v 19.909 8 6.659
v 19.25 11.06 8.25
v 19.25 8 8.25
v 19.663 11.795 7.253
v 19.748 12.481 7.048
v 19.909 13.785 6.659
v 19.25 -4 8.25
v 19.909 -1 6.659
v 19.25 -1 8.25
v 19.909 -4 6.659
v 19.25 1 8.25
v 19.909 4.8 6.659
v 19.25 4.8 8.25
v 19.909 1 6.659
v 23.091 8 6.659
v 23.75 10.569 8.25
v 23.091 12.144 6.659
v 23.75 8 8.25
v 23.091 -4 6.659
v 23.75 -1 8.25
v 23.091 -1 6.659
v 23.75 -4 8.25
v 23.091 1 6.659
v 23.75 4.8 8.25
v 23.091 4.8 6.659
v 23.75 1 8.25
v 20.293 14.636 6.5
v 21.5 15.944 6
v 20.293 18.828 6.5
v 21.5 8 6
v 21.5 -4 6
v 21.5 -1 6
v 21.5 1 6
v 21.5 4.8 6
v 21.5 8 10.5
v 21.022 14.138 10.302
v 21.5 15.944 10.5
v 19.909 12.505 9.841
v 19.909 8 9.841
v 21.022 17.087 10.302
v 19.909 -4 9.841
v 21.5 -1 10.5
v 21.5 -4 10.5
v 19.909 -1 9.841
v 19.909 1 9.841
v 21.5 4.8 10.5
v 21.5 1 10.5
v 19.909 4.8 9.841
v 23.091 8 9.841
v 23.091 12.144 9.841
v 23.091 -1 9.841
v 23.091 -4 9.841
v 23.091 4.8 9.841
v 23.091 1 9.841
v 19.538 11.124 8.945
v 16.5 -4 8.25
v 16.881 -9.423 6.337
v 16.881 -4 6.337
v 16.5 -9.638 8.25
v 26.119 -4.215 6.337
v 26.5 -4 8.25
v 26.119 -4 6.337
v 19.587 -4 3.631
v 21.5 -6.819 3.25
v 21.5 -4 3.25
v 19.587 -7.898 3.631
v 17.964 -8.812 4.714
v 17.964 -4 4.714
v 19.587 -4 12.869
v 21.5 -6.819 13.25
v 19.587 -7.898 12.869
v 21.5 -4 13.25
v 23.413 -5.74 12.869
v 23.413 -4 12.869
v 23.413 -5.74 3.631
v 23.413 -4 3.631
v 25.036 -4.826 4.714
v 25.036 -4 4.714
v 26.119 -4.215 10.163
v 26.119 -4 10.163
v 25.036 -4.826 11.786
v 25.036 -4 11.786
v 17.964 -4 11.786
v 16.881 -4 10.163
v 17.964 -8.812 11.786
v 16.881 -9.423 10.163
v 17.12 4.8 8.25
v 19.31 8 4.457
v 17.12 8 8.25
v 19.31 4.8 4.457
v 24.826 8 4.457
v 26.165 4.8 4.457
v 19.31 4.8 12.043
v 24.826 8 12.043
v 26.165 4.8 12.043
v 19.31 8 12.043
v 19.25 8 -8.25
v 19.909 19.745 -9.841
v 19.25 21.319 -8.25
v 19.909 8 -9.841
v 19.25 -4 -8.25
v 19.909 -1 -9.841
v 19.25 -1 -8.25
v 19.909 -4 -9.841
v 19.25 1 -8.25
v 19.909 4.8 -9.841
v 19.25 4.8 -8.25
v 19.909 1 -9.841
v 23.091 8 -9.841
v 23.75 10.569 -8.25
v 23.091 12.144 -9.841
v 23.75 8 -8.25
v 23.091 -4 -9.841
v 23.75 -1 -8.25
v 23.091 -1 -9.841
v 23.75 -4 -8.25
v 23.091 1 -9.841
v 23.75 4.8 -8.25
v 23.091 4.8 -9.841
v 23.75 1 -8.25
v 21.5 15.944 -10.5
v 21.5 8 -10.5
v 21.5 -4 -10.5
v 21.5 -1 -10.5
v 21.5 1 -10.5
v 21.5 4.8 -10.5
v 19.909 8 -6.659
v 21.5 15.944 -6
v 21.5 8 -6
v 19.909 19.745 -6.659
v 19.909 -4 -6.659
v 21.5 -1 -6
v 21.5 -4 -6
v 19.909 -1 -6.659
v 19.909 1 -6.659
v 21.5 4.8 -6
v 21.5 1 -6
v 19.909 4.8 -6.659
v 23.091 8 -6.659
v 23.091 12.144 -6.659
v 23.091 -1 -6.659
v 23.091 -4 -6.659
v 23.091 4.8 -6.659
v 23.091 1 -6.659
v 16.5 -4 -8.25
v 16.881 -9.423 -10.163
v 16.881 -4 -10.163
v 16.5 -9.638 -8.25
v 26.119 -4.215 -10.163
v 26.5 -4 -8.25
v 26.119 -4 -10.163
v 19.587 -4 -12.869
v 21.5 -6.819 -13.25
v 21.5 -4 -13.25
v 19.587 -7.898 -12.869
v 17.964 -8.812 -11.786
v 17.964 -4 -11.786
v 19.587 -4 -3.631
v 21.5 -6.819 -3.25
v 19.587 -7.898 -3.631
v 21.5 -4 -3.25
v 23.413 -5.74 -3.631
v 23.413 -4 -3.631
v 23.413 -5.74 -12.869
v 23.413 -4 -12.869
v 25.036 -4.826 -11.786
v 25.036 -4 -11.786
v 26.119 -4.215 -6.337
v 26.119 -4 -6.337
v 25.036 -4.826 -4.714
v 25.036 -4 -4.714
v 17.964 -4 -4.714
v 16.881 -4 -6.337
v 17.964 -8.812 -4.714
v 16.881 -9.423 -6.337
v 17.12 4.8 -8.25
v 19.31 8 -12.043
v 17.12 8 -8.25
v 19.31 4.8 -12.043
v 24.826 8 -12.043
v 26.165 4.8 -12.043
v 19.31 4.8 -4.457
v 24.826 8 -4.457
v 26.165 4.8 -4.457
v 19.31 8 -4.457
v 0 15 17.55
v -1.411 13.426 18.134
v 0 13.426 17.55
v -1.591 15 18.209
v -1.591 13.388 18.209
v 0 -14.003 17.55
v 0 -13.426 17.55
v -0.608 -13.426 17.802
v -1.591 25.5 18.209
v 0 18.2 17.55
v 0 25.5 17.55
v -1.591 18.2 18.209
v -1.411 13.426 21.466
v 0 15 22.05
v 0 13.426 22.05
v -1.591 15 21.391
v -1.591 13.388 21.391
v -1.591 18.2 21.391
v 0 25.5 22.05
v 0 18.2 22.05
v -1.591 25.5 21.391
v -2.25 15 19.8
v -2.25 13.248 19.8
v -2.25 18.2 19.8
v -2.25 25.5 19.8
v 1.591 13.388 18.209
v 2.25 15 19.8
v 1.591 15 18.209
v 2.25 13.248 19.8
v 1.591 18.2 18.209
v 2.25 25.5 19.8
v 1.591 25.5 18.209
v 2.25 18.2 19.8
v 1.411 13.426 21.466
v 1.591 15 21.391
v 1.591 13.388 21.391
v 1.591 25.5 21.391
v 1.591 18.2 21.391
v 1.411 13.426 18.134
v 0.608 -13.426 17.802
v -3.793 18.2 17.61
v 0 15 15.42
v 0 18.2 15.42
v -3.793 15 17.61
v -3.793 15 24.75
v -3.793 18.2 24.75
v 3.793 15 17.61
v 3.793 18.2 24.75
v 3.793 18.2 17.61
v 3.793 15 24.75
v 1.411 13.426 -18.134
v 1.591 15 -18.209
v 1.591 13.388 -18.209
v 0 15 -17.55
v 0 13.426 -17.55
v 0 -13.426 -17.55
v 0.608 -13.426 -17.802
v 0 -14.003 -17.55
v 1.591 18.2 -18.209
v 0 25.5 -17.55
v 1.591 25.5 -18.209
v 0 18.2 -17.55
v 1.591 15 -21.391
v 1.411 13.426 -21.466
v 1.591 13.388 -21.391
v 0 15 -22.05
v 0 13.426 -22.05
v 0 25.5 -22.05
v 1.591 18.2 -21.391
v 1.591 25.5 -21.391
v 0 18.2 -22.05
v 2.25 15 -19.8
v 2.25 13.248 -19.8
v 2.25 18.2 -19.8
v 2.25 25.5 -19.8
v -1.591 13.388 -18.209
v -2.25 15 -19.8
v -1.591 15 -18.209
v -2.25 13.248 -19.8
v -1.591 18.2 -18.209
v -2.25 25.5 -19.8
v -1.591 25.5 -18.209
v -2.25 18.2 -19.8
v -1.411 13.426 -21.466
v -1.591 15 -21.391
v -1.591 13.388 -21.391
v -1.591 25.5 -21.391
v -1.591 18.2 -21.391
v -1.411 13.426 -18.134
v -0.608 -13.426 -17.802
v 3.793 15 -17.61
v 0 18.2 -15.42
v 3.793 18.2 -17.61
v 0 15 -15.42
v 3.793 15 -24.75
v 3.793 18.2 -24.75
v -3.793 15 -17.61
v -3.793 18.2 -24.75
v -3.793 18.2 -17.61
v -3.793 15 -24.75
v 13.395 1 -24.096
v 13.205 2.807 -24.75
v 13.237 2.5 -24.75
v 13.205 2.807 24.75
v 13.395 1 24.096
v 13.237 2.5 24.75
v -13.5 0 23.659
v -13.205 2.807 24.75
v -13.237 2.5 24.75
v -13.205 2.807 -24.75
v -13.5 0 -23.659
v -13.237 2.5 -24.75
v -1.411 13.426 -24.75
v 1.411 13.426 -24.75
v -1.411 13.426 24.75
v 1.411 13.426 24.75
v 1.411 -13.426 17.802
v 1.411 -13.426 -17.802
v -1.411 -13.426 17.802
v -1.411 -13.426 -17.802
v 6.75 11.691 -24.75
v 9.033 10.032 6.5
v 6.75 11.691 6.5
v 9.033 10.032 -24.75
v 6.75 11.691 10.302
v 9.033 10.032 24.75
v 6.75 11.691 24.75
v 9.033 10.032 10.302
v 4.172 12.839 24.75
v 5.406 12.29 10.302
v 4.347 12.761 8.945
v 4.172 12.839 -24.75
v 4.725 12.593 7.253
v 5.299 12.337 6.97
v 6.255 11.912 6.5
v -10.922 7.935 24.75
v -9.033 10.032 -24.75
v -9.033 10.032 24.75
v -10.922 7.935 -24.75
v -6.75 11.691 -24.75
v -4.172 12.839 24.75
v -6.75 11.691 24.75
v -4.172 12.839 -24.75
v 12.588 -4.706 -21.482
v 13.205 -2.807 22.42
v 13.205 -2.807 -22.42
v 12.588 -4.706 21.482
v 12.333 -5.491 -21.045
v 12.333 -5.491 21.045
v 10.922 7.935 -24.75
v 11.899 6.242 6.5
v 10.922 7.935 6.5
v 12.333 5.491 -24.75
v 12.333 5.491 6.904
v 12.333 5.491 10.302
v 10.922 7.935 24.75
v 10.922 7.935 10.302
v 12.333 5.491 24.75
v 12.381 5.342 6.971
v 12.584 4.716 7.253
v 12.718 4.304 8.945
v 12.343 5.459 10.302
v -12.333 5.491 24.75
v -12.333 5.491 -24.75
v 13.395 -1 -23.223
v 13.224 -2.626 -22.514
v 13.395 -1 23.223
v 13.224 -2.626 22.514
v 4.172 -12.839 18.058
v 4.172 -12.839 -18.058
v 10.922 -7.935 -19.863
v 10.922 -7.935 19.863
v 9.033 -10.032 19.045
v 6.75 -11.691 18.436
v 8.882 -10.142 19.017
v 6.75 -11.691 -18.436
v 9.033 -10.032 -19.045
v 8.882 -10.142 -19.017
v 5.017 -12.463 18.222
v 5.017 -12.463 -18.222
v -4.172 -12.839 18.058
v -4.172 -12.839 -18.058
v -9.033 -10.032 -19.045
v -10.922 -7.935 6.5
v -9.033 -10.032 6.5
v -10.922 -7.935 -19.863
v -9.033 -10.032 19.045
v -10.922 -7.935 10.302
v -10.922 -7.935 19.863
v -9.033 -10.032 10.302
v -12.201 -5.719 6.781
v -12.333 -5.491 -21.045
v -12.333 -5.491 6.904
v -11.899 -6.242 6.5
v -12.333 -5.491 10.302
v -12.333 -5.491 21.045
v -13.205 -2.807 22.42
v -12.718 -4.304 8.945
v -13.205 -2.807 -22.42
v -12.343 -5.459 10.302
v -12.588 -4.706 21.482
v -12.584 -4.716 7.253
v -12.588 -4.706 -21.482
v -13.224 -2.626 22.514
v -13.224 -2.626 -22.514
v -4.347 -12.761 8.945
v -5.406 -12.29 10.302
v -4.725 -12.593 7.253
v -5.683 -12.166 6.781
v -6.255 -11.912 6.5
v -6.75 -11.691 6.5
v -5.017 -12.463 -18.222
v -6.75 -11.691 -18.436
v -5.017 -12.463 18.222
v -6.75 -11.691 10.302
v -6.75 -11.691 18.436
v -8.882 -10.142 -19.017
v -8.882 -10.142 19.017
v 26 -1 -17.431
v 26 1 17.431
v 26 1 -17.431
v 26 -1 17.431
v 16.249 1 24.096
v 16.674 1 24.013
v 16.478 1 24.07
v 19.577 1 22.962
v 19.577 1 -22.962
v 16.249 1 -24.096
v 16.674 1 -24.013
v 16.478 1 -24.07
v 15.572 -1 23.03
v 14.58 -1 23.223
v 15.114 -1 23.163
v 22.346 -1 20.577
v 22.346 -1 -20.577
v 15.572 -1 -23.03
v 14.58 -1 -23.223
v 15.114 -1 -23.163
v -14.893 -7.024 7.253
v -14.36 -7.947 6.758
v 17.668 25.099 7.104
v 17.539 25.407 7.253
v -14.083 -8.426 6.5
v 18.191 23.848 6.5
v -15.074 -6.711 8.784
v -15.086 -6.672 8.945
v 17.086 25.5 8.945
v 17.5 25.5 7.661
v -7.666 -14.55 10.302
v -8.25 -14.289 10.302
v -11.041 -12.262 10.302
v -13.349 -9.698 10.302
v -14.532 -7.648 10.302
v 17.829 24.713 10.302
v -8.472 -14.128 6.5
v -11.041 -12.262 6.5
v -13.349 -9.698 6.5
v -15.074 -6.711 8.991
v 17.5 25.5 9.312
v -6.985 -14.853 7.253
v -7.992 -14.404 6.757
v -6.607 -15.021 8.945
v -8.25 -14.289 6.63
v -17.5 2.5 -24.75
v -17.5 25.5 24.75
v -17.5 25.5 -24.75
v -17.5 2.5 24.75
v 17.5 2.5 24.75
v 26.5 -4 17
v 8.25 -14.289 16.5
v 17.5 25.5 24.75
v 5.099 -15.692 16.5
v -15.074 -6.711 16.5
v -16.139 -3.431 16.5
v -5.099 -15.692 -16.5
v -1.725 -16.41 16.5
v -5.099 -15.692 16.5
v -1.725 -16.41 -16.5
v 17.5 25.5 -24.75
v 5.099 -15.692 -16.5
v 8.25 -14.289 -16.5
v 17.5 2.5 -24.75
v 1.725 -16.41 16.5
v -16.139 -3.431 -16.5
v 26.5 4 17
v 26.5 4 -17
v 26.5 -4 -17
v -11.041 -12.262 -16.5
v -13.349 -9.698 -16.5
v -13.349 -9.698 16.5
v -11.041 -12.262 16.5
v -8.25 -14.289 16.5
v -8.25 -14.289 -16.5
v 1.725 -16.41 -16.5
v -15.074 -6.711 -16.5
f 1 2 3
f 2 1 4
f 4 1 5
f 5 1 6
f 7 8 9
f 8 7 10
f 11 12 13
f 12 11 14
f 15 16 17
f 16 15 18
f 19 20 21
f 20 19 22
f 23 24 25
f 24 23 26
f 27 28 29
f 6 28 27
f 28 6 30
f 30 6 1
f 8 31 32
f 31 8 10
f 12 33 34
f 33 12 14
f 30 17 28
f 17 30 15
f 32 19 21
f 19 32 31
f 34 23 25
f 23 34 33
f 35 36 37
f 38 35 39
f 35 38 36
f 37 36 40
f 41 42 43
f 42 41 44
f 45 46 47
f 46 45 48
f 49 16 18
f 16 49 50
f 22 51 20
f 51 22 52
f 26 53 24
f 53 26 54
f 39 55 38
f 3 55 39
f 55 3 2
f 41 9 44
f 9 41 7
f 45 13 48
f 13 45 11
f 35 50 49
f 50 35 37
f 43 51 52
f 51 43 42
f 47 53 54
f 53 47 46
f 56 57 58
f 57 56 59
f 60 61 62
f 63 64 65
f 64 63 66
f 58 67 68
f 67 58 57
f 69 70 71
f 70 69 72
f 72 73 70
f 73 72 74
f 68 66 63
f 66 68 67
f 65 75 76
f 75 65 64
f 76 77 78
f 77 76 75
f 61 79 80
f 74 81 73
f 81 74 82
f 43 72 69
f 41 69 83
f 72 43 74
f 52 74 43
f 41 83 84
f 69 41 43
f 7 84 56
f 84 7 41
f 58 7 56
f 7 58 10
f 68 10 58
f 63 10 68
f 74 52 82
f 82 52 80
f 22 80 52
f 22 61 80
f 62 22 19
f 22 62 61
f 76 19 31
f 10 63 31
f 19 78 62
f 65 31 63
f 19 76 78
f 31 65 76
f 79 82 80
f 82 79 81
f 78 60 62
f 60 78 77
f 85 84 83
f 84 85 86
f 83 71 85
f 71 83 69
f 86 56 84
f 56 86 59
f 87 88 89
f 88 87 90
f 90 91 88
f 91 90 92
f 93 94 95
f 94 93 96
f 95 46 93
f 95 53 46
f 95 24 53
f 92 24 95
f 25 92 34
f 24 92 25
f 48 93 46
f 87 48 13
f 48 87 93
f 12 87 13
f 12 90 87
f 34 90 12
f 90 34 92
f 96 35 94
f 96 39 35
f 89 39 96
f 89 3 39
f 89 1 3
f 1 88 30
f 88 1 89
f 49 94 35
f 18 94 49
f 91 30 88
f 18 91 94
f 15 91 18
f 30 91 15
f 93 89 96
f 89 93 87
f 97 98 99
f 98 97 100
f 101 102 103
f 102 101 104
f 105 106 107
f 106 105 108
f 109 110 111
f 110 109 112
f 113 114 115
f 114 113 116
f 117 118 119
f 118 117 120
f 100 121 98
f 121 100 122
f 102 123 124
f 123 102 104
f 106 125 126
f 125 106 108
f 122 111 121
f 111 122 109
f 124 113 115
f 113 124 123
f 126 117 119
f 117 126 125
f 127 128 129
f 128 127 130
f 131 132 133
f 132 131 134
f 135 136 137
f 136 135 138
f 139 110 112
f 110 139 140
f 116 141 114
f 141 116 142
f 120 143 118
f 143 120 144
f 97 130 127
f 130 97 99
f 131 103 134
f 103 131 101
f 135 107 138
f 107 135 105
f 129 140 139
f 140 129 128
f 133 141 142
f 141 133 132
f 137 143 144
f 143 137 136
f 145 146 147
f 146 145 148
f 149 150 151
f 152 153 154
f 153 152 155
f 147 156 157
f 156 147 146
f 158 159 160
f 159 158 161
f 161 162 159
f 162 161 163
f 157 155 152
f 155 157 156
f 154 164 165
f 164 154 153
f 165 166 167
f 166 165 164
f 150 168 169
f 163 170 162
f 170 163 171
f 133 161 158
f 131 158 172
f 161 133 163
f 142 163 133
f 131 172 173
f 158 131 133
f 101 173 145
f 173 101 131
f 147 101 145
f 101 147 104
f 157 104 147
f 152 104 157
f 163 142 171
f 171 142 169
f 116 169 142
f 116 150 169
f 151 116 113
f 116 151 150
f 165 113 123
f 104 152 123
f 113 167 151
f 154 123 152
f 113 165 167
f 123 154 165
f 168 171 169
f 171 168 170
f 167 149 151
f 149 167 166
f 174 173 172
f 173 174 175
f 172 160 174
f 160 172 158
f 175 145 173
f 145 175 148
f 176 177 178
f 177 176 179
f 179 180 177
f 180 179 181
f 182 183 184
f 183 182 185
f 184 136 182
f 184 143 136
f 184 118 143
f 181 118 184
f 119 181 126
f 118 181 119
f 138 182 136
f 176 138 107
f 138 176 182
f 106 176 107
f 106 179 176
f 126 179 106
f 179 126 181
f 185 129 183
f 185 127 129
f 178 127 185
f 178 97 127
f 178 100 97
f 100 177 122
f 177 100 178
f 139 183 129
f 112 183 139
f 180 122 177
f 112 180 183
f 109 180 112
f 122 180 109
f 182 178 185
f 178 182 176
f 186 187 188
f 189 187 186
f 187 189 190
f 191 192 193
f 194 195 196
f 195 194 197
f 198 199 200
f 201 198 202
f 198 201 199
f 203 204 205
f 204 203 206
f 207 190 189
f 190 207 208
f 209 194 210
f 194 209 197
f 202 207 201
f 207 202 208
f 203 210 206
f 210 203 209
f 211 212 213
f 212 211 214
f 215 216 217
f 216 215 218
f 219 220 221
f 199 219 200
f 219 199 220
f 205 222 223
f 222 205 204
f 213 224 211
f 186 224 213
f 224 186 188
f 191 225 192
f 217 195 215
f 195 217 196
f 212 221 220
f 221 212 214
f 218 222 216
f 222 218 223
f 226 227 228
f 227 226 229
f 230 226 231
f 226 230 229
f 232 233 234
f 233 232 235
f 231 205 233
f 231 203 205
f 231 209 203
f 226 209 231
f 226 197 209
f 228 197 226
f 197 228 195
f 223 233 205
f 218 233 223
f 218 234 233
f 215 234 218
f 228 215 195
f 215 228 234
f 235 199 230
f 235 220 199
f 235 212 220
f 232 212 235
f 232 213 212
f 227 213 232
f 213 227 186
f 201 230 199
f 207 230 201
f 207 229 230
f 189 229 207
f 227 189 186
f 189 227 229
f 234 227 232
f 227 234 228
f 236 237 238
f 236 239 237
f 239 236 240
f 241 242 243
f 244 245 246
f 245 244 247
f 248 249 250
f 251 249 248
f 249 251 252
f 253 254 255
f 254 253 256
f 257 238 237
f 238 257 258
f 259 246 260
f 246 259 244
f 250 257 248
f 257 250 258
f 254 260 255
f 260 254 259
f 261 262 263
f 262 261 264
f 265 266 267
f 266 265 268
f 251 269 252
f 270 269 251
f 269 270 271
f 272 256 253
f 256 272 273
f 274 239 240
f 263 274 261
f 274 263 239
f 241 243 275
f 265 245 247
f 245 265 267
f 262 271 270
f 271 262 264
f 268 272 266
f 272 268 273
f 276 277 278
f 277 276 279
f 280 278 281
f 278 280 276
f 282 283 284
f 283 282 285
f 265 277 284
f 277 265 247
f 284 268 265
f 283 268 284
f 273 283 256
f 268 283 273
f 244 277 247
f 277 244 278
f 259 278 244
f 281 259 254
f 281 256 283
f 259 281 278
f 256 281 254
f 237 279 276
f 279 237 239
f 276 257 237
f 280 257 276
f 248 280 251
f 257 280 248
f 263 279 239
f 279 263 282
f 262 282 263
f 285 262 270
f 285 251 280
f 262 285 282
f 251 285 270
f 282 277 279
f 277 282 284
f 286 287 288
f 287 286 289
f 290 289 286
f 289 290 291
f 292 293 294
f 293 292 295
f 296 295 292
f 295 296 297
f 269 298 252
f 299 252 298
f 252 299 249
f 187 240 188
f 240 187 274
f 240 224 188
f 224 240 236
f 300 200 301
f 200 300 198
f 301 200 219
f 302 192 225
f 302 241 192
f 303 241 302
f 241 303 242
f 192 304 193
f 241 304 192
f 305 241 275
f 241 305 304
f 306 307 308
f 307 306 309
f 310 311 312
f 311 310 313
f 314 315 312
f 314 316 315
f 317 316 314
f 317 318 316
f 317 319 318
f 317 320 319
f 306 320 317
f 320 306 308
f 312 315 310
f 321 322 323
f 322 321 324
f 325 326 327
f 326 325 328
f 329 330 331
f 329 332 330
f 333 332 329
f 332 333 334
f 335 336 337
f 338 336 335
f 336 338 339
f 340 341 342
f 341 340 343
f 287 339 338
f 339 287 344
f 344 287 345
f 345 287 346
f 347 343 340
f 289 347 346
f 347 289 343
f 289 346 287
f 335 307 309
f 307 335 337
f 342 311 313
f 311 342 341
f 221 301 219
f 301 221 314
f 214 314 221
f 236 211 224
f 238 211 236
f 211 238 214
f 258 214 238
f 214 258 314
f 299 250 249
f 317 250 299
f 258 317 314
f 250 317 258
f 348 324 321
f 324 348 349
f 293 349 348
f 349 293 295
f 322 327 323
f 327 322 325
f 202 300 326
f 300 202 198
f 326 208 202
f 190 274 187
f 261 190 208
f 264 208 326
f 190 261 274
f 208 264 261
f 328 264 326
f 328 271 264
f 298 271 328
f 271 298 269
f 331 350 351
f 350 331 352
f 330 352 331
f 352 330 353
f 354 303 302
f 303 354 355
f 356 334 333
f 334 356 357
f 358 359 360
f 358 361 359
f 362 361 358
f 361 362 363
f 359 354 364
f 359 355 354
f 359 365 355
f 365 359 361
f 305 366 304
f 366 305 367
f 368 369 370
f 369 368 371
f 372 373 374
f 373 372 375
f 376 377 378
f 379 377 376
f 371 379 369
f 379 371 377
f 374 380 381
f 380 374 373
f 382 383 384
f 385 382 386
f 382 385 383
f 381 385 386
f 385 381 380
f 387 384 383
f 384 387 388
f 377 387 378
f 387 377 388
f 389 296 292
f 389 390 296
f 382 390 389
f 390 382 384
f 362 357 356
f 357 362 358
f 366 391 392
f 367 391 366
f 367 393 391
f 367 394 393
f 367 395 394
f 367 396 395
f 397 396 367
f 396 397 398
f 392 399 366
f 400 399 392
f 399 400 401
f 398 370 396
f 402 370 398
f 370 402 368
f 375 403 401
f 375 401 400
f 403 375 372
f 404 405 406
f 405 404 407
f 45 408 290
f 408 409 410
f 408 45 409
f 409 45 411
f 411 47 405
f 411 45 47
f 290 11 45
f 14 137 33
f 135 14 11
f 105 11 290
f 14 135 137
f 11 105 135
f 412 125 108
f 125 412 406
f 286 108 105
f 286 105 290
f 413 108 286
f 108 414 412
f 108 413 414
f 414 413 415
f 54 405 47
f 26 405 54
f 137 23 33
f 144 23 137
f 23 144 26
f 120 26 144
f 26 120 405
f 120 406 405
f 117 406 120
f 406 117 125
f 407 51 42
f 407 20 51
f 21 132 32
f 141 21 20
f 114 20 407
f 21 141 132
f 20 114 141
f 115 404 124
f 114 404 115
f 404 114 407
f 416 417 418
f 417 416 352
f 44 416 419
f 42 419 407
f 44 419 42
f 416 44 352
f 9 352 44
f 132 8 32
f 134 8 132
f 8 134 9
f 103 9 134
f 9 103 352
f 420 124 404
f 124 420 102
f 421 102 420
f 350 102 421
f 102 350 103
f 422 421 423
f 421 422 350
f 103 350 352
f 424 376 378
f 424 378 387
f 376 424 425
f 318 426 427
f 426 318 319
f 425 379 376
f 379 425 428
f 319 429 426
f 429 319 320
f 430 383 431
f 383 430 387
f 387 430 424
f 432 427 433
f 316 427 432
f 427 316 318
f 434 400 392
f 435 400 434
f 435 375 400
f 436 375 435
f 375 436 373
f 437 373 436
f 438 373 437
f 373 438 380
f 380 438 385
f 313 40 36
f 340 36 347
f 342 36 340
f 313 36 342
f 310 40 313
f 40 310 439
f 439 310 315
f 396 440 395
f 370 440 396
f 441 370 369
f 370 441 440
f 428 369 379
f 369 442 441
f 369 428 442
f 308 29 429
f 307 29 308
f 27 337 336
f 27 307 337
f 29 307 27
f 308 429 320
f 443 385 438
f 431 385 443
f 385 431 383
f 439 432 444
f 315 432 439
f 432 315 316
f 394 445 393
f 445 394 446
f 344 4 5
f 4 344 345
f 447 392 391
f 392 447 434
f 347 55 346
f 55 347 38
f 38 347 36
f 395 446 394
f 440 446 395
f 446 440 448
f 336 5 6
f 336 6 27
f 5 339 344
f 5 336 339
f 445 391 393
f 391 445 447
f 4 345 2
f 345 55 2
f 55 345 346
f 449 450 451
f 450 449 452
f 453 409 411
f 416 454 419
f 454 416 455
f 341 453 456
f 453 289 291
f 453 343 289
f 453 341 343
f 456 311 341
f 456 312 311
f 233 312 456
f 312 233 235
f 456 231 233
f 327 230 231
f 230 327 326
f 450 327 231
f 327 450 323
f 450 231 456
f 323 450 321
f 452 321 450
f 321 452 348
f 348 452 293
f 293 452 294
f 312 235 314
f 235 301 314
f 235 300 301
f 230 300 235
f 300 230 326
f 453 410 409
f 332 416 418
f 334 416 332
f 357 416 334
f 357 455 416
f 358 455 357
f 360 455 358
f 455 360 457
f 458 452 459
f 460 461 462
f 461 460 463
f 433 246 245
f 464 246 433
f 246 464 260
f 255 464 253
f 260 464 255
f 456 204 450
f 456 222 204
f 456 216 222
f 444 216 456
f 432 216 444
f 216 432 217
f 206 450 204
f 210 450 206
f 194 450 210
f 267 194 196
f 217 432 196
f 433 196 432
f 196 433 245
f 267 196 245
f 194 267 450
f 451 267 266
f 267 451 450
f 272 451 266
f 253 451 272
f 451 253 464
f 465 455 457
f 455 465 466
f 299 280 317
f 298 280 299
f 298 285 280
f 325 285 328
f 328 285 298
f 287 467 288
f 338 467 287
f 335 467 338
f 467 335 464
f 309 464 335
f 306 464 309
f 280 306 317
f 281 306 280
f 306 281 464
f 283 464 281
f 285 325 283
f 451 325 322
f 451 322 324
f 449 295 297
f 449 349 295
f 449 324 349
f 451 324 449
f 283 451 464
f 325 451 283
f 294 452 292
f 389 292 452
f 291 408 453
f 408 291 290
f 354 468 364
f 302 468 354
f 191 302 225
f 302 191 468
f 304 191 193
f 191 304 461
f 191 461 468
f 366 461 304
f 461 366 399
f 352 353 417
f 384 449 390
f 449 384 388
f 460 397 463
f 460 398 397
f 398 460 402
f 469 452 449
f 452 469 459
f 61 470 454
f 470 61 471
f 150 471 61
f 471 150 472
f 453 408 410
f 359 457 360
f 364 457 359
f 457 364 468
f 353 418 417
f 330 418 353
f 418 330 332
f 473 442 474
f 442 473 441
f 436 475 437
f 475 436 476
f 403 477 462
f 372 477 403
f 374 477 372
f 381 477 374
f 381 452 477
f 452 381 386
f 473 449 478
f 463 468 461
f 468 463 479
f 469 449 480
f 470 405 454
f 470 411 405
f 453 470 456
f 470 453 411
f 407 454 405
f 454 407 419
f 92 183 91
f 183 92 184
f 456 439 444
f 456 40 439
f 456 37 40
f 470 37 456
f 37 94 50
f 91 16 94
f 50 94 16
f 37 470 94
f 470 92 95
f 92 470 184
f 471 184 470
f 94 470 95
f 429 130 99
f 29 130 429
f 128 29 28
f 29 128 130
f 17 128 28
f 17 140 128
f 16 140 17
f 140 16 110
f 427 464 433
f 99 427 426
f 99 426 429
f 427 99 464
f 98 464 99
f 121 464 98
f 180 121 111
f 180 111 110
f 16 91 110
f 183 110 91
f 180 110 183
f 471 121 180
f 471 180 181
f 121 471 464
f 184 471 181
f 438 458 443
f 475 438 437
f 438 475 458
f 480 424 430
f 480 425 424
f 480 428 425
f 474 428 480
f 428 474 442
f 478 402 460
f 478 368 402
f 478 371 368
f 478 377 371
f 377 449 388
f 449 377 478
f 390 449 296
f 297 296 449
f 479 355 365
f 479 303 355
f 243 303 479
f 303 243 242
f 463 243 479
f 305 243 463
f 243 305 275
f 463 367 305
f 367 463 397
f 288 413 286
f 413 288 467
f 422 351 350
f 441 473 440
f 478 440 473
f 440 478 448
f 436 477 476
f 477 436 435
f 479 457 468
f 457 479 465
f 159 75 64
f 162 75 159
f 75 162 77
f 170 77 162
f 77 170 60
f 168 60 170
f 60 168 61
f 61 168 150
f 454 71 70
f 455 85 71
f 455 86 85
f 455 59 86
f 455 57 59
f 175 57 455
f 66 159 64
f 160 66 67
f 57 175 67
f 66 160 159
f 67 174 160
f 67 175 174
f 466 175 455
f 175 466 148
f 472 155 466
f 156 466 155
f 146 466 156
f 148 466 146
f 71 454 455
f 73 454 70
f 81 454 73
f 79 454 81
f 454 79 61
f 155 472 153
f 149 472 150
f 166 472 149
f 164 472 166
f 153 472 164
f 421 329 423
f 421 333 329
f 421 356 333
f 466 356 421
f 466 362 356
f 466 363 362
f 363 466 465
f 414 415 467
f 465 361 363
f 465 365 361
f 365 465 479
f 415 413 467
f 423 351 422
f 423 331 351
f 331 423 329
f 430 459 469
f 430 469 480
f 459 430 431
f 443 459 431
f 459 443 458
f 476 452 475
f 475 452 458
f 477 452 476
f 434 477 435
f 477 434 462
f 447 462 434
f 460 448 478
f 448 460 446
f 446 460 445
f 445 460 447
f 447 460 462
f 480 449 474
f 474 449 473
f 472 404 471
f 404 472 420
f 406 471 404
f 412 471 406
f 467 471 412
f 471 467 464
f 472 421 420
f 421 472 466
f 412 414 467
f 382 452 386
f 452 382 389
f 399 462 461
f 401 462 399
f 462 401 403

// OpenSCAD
// drill holder

drill_d = 25;
clerance = 1;
drill_h = 33;
walls = 3;


vice_gap = 2;
vice_walls = 3;
vice_w = 10;
bolt_r = 2.25;
bolt_channel_r = 5;
nut_trap_depth = vice_walls+8+vice_gap/2;
nut_h = 3.2;

base_h = drill_h * 1.5;
base_w = 35;
base_d = 23;
thread = 3;



drill_r = (drill_d/2)+clerance;

drill_holder();

/*
//test
difference(){
    drill_holder();
    translate([0,0,-25]) cube([60,60,20],center=true);
    translate([0,0,30]) cube([60,60,60],center=true);
    }
*/
//void();
//base();


module base() {
    hull(){
    //base
        translate([0,(drill_d + walls)/2,0])
            cube([base_w,base_d,base_h],center=true);
            
    //drill
        cylinder(r=drill_r + walls, h = drill_h,center=true);
    
    //vice
    translate([drill_r+vice_w/2+vice_walls,0,0])
        cube([vice_w,vice_walls*2+vice_gap,drill_h+clerance],center=true);
    }
}


module void() {
    cylinder(r=drill_r, h = base_h+clerance,center=true);
    
    // vice jaws
    translate([drill_r+drill_r/2-1,0,0])
        cube([drill_r,vice_gap, base_h],center=true);
    
    // vice nut traps
    translate([drill_r+walls+bolt_channel_r,-(vice_walls+vice_gap/2),drill_h/4])
        rotate([90,180,0]) 
            nut_trap() ;

    translate([drill_r+walls+bolt_channel_r,-(vice_walls+vice_gap/2),-drill_h/4])
            rotate([90,180,0]) 
                nut_trap() ;
    // rail nut traps
    translate([0,nut_trap_depth-nut_h+(drill_d + walls)/2+nut_h+1,base_h/2.5])
            rotate([270,90,0]) 
                nut_trap() ;
    translate([0,nut_trap_depth-nut_h+(drill_d + walls)/2+nut_h+1,-base_h/2.5])
            rotate([270,270,0]) 
                nut_trap() ;  
    // Motor Cooling Shaft
    translate([0,0,drill_h/2-8])
        rotate([0,90,45])
            motor_vent ();
}


module drill_holder() {
    difference() {
        base();
        void();
    }
}

 module screw_hole(shaft_r=1.5,channel_r=5,channel_h=50) {
    
    translate([0,0,-channel_h/2+1])
        cylinder(r=shaft_r,h=channel_h,center=true);
    translate([0,0,channel_h/2])
        cylinder(r=channel_r,h=channel_h,center=true);
     
}

module nut_trap() {
    screw_hole(shaft_r=bolt_r,channel_r=bolt_channel_r,channel_h=50);
    hull(){
        translate([0,0,-nut_trap_depth]) m4_nut ();
        translate([-10,0,-nut_trap_depth]) m4_nut ();
    }
}

module m3_nut (){
   cylinder(r = 5.5 / 2 / cos(180 / 6) + 0.05, $fn=6);
}

module m4_nut (){
   cylinder(r = 7.5 / 2 / cos(180 / 6) + 0.05, h=nut_h, $fn=6);
}

module motor_vent (){
    hull (){
        translate([0,4,0])
            cylinder(r=2,h=100,center=true);
        translate([0,-4,0])
            cylinder(r=2,h=100,center=true);
    }
}
